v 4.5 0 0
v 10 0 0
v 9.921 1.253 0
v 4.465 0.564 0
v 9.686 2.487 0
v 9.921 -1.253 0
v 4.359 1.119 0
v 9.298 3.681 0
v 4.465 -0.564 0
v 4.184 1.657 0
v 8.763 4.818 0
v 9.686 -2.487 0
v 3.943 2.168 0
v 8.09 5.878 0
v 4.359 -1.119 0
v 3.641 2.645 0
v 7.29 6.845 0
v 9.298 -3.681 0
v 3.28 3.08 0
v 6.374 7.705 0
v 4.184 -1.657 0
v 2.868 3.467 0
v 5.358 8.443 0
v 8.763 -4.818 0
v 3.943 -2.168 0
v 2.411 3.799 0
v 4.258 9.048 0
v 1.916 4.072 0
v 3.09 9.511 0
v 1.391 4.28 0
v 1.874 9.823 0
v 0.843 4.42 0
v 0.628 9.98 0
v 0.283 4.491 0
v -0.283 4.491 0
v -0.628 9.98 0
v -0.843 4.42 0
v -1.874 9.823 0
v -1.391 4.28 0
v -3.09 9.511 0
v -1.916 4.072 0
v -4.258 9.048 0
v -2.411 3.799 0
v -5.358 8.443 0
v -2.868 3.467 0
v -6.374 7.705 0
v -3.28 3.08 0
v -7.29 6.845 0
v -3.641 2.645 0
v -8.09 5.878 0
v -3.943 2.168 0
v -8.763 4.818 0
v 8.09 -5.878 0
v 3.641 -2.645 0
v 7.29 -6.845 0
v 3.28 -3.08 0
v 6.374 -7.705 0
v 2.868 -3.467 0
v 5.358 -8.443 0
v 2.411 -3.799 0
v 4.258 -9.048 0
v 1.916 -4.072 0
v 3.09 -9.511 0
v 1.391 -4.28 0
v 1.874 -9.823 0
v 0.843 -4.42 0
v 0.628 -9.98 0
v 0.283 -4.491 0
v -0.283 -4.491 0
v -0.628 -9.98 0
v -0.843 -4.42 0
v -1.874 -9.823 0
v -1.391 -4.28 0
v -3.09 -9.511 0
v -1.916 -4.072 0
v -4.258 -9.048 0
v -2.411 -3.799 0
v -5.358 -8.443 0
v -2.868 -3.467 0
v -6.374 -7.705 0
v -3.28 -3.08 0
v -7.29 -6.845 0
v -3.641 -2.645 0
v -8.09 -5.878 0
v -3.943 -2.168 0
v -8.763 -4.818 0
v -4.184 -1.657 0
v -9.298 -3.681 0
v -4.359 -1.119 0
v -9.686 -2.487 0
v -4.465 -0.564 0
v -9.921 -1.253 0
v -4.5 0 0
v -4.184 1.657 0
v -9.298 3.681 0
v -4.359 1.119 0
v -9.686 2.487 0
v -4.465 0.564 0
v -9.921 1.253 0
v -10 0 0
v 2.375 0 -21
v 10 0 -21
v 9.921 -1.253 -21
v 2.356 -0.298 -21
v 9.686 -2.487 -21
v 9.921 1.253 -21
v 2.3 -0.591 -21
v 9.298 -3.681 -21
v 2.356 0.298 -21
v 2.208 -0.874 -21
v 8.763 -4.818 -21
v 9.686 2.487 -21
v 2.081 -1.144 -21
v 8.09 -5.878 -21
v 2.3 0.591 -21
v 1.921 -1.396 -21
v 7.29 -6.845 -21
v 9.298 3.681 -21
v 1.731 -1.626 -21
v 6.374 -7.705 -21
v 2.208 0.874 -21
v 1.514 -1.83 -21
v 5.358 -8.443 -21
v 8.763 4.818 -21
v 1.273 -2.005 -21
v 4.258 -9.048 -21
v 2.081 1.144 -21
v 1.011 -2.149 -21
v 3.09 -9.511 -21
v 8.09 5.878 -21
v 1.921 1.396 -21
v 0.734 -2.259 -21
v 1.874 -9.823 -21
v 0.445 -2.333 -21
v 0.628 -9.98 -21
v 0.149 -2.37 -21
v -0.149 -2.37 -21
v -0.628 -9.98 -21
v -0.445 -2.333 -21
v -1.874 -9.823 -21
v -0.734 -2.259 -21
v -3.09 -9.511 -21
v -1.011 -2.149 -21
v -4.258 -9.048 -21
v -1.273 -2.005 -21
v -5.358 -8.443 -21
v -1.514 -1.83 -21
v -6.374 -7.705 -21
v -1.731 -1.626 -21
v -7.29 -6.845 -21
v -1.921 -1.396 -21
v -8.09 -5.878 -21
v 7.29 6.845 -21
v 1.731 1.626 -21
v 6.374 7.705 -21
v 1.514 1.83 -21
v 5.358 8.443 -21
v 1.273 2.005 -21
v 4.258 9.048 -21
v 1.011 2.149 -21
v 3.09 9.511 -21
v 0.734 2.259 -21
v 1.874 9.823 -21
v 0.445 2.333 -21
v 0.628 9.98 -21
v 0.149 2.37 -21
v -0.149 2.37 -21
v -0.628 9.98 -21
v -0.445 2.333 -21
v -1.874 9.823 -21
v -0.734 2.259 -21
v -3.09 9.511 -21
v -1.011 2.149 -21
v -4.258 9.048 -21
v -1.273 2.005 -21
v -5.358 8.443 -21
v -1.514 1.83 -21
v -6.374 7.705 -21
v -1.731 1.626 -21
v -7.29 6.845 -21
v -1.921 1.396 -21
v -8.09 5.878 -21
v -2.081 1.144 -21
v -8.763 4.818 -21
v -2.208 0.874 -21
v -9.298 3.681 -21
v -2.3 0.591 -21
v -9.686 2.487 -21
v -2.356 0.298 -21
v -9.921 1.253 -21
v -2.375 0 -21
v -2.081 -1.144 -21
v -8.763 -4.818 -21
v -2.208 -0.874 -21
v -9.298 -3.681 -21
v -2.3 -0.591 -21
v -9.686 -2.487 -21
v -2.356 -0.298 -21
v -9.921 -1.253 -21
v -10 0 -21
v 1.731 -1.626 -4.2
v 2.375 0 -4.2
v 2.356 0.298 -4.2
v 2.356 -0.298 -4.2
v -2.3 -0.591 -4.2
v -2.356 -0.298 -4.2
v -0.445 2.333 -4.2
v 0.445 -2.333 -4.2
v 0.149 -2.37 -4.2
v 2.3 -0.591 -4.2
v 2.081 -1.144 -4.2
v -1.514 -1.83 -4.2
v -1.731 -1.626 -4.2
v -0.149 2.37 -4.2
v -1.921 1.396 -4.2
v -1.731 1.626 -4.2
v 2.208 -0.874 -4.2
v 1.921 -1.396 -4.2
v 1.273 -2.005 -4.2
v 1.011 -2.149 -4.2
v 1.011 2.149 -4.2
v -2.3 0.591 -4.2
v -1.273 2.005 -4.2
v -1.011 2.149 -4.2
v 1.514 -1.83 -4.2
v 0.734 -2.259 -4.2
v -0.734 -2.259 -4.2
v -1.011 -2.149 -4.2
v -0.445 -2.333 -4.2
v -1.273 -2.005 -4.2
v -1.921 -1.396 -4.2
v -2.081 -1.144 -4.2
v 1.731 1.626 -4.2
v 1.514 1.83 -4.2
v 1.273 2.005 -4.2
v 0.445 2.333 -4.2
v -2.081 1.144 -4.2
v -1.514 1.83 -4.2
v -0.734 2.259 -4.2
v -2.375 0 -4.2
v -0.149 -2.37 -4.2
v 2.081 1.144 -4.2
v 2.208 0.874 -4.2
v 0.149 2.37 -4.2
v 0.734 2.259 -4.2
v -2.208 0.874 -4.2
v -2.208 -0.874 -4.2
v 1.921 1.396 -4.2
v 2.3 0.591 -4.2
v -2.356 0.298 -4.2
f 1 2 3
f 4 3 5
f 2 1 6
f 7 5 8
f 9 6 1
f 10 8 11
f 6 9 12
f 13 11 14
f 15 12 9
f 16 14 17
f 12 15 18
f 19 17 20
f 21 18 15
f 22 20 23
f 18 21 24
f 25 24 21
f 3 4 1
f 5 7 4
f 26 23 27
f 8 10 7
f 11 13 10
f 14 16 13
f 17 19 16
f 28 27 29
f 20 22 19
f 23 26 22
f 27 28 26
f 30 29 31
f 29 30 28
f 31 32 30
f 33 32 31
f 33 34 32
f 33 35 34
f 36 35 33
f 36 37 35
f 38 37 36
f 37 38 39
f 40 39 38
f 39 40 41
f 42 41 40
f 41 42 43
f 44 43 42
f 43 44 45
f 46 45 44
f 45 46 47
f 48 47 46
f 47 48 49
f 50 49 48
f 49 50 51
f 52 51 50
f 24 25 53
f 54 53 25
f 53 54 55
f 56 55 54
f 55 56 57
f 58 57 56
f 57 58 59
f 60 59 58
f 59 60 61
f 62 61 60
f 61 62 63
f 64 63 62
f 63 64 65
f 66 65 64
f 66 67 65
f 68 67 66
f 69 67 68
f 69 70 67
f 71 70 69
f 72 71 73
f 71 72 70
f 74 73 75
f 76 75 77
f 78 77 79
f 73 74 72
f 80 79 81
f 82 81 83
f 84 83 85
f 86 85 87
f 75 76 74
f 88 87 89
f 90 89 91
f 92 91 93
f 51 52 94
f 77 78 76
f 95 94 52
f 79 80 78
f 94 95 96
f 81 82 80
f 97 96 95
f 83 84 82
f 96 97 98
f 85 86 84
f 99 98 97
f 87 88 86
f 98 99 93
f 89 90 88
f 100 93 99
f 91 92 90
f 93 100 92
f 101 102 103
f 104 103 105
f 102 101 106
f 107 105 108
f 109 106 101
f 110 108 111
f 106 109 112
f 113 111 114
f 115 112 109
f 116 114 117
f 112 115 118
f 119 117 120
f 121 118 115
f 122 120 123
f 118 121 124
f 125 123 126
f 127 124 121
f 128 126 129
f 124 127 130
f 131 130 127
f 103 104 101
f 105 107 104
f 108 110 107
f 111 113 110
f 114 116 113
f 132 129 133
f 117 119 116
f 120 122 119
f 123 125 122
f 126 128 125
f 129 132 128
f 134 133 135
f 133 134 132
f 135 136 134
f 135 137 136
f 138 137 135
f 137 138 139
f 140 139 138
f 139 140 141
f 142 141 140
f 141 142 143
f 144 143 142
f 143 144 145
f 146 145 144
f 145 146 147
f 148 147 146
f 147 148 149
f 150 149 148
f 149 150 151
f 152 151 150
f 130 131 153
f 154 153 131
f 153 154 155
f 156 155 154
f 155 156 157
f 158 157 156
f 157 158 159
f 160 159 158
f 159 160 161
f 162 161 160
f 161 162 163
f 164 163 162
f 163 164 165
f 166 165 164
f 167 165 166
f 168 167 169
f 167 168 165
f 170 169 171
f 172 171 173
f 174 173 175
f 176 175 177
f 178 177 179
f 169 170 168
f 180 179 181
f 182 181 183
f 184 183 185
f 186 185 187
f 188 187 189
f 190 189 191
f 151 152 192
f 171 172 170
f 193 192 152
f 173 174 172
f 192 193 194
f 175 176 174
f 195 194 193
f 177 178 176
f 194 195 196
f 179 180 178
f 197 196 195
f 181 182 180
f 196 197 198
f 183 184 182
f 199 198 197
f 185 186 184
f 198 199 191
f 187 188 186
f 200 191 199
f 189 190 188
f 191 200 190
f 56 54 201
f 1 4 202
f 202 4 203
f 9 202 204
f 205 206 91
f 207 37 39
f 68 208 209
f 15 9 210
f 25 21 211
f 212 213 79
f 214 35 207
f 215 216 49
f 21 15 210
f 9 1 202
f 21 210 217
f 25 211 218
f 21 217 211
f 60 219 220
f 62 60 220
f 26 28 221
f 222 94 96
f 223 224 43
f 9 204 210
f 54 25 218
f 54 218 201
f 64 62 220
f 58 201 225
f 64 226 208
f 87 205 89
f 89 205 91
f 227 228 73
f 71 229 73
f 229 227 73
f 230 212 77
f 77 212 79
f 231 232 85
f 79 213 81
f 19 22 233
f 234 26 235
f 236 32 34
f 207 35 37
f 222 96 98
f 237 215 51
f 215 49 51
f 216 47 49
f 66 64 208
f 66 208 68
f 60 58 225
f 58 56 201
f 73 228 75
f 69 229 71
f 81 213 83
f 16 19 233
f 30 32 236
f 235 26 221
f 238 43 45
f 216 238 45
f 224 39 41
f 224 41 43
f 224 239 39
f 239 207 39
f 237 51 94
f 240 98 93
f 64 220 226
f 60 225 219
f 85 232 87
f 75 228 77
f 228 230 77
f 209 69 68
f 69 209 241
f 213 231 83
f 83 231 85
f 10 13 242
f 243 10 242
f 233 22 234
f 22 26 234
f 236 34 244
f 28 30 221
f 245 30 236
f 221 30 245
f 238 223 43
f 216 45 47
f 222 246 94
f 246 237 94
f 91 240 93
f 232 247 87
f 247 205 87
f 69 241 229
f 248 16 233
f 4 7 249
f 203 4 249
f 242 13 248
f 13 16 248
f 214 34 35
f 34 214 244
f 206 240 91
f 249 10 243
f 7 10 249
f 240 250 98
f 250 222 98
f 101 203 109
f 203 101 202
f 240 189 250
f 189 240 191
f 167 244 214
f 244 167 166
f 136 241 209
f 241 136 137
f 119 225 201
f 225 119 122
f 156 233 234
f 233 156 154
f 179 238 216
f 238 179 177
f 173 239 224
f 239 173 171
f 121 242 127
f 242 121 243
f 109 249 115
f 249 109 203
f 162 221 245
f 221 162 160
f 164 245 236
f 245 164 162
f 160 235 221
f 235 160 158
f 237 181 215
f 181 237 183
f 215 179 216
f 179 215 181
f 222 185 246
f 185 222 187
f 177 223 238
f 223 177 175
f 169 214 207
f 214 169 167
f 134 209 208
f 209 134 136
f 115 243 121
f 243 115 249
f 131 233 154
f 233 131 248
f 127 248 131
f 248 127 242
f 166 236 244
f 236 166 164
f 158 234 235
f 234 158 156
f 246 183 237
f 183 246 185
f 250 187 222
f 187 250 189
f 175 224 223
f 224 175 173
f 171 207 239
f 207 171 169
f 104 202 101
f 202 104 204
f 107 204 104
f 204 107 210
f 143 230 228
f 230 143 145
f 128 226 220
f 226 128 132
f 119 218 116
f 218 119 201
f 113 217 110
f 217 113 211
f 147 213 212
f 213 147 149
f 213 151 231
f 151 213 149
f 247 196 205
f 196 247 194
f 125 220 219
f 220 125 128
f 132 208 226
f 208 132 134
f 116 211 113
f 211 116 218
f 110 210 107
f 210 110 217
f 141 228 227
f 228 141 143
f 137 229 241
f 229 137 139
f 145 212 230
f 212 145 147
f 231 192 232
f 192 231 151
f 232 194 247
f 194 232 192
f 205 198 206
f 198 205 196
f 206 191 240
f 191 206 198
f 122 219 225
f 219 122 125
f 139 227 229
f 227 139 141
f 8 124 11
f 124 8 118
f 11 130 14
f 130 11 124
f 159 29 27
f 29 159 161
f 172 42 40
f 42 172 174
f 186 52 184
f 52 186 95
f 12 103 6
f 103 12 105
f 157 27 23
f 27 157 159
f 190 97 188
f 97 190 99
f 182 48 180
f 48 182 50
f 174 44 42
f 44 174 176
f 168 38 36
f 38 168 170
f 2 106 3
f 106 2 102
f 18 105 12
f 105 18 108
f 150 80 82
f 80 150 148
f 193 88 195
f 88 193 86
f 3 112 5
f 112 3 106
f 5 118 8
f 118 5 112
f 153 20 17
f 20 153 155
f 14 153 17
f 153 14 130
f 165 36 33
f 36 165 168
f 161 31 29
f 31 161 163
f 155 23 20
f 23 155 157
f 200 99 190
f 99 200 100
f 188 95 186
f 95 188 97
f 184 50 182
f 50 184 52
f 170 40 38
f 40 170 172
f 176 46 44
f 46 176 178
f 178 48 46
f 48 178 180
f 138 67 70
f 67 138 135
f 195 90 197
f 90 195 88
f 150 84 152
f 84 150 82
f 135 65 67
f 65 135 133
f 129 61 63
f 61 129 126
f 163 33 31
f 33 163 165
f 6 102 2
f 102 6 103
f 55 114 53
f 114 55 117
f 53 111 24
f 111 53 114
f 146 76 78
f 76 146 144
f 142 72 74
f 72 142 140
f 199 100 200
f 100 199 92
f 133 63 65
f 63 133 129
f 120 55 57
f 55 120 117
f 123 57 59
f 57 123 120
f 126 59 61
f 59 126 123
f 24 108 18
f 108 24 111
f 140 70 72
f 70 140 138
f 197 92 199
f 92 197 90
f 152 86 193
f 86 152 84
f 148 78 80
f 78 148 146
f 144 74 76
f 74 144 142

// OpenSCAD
$fn = 50;


difference() {
	union() {
		translate(v = [0, 0, -21.0000000000]) {
			cylinder(h = 21, r = 10.0000000000);
		}
		cylinder(h = 0, r = 16.0000000000);
	}
	union() {
		translate(v = [0, 0, 0]) {
			rotate(a = [0, 0, 0]) {
				difference() {
					union() {
						#translate(v = [0, 0, -21.0000000000]) {
							cylinder(h = 21, r = 2.2500000000);
						}
						#translate(v = [0, 0, -4.2000000000]) {
							cylinder(h = 4.2000000000, r = 10.0000000000, r1 = 2.3750000000, r2 = 4.5000000000);
						}
						#translate(v = [0, 0, -21.0000000000]) {
							cylinder(h = 21, r = 2.3750000000);
						}
						#translate(v = [0, 0, -21.0000000000]) {
							cylinder(h = 21, r = 2.2500000000);
						}
					}
					union();
				}
			}
		}
	}
}
